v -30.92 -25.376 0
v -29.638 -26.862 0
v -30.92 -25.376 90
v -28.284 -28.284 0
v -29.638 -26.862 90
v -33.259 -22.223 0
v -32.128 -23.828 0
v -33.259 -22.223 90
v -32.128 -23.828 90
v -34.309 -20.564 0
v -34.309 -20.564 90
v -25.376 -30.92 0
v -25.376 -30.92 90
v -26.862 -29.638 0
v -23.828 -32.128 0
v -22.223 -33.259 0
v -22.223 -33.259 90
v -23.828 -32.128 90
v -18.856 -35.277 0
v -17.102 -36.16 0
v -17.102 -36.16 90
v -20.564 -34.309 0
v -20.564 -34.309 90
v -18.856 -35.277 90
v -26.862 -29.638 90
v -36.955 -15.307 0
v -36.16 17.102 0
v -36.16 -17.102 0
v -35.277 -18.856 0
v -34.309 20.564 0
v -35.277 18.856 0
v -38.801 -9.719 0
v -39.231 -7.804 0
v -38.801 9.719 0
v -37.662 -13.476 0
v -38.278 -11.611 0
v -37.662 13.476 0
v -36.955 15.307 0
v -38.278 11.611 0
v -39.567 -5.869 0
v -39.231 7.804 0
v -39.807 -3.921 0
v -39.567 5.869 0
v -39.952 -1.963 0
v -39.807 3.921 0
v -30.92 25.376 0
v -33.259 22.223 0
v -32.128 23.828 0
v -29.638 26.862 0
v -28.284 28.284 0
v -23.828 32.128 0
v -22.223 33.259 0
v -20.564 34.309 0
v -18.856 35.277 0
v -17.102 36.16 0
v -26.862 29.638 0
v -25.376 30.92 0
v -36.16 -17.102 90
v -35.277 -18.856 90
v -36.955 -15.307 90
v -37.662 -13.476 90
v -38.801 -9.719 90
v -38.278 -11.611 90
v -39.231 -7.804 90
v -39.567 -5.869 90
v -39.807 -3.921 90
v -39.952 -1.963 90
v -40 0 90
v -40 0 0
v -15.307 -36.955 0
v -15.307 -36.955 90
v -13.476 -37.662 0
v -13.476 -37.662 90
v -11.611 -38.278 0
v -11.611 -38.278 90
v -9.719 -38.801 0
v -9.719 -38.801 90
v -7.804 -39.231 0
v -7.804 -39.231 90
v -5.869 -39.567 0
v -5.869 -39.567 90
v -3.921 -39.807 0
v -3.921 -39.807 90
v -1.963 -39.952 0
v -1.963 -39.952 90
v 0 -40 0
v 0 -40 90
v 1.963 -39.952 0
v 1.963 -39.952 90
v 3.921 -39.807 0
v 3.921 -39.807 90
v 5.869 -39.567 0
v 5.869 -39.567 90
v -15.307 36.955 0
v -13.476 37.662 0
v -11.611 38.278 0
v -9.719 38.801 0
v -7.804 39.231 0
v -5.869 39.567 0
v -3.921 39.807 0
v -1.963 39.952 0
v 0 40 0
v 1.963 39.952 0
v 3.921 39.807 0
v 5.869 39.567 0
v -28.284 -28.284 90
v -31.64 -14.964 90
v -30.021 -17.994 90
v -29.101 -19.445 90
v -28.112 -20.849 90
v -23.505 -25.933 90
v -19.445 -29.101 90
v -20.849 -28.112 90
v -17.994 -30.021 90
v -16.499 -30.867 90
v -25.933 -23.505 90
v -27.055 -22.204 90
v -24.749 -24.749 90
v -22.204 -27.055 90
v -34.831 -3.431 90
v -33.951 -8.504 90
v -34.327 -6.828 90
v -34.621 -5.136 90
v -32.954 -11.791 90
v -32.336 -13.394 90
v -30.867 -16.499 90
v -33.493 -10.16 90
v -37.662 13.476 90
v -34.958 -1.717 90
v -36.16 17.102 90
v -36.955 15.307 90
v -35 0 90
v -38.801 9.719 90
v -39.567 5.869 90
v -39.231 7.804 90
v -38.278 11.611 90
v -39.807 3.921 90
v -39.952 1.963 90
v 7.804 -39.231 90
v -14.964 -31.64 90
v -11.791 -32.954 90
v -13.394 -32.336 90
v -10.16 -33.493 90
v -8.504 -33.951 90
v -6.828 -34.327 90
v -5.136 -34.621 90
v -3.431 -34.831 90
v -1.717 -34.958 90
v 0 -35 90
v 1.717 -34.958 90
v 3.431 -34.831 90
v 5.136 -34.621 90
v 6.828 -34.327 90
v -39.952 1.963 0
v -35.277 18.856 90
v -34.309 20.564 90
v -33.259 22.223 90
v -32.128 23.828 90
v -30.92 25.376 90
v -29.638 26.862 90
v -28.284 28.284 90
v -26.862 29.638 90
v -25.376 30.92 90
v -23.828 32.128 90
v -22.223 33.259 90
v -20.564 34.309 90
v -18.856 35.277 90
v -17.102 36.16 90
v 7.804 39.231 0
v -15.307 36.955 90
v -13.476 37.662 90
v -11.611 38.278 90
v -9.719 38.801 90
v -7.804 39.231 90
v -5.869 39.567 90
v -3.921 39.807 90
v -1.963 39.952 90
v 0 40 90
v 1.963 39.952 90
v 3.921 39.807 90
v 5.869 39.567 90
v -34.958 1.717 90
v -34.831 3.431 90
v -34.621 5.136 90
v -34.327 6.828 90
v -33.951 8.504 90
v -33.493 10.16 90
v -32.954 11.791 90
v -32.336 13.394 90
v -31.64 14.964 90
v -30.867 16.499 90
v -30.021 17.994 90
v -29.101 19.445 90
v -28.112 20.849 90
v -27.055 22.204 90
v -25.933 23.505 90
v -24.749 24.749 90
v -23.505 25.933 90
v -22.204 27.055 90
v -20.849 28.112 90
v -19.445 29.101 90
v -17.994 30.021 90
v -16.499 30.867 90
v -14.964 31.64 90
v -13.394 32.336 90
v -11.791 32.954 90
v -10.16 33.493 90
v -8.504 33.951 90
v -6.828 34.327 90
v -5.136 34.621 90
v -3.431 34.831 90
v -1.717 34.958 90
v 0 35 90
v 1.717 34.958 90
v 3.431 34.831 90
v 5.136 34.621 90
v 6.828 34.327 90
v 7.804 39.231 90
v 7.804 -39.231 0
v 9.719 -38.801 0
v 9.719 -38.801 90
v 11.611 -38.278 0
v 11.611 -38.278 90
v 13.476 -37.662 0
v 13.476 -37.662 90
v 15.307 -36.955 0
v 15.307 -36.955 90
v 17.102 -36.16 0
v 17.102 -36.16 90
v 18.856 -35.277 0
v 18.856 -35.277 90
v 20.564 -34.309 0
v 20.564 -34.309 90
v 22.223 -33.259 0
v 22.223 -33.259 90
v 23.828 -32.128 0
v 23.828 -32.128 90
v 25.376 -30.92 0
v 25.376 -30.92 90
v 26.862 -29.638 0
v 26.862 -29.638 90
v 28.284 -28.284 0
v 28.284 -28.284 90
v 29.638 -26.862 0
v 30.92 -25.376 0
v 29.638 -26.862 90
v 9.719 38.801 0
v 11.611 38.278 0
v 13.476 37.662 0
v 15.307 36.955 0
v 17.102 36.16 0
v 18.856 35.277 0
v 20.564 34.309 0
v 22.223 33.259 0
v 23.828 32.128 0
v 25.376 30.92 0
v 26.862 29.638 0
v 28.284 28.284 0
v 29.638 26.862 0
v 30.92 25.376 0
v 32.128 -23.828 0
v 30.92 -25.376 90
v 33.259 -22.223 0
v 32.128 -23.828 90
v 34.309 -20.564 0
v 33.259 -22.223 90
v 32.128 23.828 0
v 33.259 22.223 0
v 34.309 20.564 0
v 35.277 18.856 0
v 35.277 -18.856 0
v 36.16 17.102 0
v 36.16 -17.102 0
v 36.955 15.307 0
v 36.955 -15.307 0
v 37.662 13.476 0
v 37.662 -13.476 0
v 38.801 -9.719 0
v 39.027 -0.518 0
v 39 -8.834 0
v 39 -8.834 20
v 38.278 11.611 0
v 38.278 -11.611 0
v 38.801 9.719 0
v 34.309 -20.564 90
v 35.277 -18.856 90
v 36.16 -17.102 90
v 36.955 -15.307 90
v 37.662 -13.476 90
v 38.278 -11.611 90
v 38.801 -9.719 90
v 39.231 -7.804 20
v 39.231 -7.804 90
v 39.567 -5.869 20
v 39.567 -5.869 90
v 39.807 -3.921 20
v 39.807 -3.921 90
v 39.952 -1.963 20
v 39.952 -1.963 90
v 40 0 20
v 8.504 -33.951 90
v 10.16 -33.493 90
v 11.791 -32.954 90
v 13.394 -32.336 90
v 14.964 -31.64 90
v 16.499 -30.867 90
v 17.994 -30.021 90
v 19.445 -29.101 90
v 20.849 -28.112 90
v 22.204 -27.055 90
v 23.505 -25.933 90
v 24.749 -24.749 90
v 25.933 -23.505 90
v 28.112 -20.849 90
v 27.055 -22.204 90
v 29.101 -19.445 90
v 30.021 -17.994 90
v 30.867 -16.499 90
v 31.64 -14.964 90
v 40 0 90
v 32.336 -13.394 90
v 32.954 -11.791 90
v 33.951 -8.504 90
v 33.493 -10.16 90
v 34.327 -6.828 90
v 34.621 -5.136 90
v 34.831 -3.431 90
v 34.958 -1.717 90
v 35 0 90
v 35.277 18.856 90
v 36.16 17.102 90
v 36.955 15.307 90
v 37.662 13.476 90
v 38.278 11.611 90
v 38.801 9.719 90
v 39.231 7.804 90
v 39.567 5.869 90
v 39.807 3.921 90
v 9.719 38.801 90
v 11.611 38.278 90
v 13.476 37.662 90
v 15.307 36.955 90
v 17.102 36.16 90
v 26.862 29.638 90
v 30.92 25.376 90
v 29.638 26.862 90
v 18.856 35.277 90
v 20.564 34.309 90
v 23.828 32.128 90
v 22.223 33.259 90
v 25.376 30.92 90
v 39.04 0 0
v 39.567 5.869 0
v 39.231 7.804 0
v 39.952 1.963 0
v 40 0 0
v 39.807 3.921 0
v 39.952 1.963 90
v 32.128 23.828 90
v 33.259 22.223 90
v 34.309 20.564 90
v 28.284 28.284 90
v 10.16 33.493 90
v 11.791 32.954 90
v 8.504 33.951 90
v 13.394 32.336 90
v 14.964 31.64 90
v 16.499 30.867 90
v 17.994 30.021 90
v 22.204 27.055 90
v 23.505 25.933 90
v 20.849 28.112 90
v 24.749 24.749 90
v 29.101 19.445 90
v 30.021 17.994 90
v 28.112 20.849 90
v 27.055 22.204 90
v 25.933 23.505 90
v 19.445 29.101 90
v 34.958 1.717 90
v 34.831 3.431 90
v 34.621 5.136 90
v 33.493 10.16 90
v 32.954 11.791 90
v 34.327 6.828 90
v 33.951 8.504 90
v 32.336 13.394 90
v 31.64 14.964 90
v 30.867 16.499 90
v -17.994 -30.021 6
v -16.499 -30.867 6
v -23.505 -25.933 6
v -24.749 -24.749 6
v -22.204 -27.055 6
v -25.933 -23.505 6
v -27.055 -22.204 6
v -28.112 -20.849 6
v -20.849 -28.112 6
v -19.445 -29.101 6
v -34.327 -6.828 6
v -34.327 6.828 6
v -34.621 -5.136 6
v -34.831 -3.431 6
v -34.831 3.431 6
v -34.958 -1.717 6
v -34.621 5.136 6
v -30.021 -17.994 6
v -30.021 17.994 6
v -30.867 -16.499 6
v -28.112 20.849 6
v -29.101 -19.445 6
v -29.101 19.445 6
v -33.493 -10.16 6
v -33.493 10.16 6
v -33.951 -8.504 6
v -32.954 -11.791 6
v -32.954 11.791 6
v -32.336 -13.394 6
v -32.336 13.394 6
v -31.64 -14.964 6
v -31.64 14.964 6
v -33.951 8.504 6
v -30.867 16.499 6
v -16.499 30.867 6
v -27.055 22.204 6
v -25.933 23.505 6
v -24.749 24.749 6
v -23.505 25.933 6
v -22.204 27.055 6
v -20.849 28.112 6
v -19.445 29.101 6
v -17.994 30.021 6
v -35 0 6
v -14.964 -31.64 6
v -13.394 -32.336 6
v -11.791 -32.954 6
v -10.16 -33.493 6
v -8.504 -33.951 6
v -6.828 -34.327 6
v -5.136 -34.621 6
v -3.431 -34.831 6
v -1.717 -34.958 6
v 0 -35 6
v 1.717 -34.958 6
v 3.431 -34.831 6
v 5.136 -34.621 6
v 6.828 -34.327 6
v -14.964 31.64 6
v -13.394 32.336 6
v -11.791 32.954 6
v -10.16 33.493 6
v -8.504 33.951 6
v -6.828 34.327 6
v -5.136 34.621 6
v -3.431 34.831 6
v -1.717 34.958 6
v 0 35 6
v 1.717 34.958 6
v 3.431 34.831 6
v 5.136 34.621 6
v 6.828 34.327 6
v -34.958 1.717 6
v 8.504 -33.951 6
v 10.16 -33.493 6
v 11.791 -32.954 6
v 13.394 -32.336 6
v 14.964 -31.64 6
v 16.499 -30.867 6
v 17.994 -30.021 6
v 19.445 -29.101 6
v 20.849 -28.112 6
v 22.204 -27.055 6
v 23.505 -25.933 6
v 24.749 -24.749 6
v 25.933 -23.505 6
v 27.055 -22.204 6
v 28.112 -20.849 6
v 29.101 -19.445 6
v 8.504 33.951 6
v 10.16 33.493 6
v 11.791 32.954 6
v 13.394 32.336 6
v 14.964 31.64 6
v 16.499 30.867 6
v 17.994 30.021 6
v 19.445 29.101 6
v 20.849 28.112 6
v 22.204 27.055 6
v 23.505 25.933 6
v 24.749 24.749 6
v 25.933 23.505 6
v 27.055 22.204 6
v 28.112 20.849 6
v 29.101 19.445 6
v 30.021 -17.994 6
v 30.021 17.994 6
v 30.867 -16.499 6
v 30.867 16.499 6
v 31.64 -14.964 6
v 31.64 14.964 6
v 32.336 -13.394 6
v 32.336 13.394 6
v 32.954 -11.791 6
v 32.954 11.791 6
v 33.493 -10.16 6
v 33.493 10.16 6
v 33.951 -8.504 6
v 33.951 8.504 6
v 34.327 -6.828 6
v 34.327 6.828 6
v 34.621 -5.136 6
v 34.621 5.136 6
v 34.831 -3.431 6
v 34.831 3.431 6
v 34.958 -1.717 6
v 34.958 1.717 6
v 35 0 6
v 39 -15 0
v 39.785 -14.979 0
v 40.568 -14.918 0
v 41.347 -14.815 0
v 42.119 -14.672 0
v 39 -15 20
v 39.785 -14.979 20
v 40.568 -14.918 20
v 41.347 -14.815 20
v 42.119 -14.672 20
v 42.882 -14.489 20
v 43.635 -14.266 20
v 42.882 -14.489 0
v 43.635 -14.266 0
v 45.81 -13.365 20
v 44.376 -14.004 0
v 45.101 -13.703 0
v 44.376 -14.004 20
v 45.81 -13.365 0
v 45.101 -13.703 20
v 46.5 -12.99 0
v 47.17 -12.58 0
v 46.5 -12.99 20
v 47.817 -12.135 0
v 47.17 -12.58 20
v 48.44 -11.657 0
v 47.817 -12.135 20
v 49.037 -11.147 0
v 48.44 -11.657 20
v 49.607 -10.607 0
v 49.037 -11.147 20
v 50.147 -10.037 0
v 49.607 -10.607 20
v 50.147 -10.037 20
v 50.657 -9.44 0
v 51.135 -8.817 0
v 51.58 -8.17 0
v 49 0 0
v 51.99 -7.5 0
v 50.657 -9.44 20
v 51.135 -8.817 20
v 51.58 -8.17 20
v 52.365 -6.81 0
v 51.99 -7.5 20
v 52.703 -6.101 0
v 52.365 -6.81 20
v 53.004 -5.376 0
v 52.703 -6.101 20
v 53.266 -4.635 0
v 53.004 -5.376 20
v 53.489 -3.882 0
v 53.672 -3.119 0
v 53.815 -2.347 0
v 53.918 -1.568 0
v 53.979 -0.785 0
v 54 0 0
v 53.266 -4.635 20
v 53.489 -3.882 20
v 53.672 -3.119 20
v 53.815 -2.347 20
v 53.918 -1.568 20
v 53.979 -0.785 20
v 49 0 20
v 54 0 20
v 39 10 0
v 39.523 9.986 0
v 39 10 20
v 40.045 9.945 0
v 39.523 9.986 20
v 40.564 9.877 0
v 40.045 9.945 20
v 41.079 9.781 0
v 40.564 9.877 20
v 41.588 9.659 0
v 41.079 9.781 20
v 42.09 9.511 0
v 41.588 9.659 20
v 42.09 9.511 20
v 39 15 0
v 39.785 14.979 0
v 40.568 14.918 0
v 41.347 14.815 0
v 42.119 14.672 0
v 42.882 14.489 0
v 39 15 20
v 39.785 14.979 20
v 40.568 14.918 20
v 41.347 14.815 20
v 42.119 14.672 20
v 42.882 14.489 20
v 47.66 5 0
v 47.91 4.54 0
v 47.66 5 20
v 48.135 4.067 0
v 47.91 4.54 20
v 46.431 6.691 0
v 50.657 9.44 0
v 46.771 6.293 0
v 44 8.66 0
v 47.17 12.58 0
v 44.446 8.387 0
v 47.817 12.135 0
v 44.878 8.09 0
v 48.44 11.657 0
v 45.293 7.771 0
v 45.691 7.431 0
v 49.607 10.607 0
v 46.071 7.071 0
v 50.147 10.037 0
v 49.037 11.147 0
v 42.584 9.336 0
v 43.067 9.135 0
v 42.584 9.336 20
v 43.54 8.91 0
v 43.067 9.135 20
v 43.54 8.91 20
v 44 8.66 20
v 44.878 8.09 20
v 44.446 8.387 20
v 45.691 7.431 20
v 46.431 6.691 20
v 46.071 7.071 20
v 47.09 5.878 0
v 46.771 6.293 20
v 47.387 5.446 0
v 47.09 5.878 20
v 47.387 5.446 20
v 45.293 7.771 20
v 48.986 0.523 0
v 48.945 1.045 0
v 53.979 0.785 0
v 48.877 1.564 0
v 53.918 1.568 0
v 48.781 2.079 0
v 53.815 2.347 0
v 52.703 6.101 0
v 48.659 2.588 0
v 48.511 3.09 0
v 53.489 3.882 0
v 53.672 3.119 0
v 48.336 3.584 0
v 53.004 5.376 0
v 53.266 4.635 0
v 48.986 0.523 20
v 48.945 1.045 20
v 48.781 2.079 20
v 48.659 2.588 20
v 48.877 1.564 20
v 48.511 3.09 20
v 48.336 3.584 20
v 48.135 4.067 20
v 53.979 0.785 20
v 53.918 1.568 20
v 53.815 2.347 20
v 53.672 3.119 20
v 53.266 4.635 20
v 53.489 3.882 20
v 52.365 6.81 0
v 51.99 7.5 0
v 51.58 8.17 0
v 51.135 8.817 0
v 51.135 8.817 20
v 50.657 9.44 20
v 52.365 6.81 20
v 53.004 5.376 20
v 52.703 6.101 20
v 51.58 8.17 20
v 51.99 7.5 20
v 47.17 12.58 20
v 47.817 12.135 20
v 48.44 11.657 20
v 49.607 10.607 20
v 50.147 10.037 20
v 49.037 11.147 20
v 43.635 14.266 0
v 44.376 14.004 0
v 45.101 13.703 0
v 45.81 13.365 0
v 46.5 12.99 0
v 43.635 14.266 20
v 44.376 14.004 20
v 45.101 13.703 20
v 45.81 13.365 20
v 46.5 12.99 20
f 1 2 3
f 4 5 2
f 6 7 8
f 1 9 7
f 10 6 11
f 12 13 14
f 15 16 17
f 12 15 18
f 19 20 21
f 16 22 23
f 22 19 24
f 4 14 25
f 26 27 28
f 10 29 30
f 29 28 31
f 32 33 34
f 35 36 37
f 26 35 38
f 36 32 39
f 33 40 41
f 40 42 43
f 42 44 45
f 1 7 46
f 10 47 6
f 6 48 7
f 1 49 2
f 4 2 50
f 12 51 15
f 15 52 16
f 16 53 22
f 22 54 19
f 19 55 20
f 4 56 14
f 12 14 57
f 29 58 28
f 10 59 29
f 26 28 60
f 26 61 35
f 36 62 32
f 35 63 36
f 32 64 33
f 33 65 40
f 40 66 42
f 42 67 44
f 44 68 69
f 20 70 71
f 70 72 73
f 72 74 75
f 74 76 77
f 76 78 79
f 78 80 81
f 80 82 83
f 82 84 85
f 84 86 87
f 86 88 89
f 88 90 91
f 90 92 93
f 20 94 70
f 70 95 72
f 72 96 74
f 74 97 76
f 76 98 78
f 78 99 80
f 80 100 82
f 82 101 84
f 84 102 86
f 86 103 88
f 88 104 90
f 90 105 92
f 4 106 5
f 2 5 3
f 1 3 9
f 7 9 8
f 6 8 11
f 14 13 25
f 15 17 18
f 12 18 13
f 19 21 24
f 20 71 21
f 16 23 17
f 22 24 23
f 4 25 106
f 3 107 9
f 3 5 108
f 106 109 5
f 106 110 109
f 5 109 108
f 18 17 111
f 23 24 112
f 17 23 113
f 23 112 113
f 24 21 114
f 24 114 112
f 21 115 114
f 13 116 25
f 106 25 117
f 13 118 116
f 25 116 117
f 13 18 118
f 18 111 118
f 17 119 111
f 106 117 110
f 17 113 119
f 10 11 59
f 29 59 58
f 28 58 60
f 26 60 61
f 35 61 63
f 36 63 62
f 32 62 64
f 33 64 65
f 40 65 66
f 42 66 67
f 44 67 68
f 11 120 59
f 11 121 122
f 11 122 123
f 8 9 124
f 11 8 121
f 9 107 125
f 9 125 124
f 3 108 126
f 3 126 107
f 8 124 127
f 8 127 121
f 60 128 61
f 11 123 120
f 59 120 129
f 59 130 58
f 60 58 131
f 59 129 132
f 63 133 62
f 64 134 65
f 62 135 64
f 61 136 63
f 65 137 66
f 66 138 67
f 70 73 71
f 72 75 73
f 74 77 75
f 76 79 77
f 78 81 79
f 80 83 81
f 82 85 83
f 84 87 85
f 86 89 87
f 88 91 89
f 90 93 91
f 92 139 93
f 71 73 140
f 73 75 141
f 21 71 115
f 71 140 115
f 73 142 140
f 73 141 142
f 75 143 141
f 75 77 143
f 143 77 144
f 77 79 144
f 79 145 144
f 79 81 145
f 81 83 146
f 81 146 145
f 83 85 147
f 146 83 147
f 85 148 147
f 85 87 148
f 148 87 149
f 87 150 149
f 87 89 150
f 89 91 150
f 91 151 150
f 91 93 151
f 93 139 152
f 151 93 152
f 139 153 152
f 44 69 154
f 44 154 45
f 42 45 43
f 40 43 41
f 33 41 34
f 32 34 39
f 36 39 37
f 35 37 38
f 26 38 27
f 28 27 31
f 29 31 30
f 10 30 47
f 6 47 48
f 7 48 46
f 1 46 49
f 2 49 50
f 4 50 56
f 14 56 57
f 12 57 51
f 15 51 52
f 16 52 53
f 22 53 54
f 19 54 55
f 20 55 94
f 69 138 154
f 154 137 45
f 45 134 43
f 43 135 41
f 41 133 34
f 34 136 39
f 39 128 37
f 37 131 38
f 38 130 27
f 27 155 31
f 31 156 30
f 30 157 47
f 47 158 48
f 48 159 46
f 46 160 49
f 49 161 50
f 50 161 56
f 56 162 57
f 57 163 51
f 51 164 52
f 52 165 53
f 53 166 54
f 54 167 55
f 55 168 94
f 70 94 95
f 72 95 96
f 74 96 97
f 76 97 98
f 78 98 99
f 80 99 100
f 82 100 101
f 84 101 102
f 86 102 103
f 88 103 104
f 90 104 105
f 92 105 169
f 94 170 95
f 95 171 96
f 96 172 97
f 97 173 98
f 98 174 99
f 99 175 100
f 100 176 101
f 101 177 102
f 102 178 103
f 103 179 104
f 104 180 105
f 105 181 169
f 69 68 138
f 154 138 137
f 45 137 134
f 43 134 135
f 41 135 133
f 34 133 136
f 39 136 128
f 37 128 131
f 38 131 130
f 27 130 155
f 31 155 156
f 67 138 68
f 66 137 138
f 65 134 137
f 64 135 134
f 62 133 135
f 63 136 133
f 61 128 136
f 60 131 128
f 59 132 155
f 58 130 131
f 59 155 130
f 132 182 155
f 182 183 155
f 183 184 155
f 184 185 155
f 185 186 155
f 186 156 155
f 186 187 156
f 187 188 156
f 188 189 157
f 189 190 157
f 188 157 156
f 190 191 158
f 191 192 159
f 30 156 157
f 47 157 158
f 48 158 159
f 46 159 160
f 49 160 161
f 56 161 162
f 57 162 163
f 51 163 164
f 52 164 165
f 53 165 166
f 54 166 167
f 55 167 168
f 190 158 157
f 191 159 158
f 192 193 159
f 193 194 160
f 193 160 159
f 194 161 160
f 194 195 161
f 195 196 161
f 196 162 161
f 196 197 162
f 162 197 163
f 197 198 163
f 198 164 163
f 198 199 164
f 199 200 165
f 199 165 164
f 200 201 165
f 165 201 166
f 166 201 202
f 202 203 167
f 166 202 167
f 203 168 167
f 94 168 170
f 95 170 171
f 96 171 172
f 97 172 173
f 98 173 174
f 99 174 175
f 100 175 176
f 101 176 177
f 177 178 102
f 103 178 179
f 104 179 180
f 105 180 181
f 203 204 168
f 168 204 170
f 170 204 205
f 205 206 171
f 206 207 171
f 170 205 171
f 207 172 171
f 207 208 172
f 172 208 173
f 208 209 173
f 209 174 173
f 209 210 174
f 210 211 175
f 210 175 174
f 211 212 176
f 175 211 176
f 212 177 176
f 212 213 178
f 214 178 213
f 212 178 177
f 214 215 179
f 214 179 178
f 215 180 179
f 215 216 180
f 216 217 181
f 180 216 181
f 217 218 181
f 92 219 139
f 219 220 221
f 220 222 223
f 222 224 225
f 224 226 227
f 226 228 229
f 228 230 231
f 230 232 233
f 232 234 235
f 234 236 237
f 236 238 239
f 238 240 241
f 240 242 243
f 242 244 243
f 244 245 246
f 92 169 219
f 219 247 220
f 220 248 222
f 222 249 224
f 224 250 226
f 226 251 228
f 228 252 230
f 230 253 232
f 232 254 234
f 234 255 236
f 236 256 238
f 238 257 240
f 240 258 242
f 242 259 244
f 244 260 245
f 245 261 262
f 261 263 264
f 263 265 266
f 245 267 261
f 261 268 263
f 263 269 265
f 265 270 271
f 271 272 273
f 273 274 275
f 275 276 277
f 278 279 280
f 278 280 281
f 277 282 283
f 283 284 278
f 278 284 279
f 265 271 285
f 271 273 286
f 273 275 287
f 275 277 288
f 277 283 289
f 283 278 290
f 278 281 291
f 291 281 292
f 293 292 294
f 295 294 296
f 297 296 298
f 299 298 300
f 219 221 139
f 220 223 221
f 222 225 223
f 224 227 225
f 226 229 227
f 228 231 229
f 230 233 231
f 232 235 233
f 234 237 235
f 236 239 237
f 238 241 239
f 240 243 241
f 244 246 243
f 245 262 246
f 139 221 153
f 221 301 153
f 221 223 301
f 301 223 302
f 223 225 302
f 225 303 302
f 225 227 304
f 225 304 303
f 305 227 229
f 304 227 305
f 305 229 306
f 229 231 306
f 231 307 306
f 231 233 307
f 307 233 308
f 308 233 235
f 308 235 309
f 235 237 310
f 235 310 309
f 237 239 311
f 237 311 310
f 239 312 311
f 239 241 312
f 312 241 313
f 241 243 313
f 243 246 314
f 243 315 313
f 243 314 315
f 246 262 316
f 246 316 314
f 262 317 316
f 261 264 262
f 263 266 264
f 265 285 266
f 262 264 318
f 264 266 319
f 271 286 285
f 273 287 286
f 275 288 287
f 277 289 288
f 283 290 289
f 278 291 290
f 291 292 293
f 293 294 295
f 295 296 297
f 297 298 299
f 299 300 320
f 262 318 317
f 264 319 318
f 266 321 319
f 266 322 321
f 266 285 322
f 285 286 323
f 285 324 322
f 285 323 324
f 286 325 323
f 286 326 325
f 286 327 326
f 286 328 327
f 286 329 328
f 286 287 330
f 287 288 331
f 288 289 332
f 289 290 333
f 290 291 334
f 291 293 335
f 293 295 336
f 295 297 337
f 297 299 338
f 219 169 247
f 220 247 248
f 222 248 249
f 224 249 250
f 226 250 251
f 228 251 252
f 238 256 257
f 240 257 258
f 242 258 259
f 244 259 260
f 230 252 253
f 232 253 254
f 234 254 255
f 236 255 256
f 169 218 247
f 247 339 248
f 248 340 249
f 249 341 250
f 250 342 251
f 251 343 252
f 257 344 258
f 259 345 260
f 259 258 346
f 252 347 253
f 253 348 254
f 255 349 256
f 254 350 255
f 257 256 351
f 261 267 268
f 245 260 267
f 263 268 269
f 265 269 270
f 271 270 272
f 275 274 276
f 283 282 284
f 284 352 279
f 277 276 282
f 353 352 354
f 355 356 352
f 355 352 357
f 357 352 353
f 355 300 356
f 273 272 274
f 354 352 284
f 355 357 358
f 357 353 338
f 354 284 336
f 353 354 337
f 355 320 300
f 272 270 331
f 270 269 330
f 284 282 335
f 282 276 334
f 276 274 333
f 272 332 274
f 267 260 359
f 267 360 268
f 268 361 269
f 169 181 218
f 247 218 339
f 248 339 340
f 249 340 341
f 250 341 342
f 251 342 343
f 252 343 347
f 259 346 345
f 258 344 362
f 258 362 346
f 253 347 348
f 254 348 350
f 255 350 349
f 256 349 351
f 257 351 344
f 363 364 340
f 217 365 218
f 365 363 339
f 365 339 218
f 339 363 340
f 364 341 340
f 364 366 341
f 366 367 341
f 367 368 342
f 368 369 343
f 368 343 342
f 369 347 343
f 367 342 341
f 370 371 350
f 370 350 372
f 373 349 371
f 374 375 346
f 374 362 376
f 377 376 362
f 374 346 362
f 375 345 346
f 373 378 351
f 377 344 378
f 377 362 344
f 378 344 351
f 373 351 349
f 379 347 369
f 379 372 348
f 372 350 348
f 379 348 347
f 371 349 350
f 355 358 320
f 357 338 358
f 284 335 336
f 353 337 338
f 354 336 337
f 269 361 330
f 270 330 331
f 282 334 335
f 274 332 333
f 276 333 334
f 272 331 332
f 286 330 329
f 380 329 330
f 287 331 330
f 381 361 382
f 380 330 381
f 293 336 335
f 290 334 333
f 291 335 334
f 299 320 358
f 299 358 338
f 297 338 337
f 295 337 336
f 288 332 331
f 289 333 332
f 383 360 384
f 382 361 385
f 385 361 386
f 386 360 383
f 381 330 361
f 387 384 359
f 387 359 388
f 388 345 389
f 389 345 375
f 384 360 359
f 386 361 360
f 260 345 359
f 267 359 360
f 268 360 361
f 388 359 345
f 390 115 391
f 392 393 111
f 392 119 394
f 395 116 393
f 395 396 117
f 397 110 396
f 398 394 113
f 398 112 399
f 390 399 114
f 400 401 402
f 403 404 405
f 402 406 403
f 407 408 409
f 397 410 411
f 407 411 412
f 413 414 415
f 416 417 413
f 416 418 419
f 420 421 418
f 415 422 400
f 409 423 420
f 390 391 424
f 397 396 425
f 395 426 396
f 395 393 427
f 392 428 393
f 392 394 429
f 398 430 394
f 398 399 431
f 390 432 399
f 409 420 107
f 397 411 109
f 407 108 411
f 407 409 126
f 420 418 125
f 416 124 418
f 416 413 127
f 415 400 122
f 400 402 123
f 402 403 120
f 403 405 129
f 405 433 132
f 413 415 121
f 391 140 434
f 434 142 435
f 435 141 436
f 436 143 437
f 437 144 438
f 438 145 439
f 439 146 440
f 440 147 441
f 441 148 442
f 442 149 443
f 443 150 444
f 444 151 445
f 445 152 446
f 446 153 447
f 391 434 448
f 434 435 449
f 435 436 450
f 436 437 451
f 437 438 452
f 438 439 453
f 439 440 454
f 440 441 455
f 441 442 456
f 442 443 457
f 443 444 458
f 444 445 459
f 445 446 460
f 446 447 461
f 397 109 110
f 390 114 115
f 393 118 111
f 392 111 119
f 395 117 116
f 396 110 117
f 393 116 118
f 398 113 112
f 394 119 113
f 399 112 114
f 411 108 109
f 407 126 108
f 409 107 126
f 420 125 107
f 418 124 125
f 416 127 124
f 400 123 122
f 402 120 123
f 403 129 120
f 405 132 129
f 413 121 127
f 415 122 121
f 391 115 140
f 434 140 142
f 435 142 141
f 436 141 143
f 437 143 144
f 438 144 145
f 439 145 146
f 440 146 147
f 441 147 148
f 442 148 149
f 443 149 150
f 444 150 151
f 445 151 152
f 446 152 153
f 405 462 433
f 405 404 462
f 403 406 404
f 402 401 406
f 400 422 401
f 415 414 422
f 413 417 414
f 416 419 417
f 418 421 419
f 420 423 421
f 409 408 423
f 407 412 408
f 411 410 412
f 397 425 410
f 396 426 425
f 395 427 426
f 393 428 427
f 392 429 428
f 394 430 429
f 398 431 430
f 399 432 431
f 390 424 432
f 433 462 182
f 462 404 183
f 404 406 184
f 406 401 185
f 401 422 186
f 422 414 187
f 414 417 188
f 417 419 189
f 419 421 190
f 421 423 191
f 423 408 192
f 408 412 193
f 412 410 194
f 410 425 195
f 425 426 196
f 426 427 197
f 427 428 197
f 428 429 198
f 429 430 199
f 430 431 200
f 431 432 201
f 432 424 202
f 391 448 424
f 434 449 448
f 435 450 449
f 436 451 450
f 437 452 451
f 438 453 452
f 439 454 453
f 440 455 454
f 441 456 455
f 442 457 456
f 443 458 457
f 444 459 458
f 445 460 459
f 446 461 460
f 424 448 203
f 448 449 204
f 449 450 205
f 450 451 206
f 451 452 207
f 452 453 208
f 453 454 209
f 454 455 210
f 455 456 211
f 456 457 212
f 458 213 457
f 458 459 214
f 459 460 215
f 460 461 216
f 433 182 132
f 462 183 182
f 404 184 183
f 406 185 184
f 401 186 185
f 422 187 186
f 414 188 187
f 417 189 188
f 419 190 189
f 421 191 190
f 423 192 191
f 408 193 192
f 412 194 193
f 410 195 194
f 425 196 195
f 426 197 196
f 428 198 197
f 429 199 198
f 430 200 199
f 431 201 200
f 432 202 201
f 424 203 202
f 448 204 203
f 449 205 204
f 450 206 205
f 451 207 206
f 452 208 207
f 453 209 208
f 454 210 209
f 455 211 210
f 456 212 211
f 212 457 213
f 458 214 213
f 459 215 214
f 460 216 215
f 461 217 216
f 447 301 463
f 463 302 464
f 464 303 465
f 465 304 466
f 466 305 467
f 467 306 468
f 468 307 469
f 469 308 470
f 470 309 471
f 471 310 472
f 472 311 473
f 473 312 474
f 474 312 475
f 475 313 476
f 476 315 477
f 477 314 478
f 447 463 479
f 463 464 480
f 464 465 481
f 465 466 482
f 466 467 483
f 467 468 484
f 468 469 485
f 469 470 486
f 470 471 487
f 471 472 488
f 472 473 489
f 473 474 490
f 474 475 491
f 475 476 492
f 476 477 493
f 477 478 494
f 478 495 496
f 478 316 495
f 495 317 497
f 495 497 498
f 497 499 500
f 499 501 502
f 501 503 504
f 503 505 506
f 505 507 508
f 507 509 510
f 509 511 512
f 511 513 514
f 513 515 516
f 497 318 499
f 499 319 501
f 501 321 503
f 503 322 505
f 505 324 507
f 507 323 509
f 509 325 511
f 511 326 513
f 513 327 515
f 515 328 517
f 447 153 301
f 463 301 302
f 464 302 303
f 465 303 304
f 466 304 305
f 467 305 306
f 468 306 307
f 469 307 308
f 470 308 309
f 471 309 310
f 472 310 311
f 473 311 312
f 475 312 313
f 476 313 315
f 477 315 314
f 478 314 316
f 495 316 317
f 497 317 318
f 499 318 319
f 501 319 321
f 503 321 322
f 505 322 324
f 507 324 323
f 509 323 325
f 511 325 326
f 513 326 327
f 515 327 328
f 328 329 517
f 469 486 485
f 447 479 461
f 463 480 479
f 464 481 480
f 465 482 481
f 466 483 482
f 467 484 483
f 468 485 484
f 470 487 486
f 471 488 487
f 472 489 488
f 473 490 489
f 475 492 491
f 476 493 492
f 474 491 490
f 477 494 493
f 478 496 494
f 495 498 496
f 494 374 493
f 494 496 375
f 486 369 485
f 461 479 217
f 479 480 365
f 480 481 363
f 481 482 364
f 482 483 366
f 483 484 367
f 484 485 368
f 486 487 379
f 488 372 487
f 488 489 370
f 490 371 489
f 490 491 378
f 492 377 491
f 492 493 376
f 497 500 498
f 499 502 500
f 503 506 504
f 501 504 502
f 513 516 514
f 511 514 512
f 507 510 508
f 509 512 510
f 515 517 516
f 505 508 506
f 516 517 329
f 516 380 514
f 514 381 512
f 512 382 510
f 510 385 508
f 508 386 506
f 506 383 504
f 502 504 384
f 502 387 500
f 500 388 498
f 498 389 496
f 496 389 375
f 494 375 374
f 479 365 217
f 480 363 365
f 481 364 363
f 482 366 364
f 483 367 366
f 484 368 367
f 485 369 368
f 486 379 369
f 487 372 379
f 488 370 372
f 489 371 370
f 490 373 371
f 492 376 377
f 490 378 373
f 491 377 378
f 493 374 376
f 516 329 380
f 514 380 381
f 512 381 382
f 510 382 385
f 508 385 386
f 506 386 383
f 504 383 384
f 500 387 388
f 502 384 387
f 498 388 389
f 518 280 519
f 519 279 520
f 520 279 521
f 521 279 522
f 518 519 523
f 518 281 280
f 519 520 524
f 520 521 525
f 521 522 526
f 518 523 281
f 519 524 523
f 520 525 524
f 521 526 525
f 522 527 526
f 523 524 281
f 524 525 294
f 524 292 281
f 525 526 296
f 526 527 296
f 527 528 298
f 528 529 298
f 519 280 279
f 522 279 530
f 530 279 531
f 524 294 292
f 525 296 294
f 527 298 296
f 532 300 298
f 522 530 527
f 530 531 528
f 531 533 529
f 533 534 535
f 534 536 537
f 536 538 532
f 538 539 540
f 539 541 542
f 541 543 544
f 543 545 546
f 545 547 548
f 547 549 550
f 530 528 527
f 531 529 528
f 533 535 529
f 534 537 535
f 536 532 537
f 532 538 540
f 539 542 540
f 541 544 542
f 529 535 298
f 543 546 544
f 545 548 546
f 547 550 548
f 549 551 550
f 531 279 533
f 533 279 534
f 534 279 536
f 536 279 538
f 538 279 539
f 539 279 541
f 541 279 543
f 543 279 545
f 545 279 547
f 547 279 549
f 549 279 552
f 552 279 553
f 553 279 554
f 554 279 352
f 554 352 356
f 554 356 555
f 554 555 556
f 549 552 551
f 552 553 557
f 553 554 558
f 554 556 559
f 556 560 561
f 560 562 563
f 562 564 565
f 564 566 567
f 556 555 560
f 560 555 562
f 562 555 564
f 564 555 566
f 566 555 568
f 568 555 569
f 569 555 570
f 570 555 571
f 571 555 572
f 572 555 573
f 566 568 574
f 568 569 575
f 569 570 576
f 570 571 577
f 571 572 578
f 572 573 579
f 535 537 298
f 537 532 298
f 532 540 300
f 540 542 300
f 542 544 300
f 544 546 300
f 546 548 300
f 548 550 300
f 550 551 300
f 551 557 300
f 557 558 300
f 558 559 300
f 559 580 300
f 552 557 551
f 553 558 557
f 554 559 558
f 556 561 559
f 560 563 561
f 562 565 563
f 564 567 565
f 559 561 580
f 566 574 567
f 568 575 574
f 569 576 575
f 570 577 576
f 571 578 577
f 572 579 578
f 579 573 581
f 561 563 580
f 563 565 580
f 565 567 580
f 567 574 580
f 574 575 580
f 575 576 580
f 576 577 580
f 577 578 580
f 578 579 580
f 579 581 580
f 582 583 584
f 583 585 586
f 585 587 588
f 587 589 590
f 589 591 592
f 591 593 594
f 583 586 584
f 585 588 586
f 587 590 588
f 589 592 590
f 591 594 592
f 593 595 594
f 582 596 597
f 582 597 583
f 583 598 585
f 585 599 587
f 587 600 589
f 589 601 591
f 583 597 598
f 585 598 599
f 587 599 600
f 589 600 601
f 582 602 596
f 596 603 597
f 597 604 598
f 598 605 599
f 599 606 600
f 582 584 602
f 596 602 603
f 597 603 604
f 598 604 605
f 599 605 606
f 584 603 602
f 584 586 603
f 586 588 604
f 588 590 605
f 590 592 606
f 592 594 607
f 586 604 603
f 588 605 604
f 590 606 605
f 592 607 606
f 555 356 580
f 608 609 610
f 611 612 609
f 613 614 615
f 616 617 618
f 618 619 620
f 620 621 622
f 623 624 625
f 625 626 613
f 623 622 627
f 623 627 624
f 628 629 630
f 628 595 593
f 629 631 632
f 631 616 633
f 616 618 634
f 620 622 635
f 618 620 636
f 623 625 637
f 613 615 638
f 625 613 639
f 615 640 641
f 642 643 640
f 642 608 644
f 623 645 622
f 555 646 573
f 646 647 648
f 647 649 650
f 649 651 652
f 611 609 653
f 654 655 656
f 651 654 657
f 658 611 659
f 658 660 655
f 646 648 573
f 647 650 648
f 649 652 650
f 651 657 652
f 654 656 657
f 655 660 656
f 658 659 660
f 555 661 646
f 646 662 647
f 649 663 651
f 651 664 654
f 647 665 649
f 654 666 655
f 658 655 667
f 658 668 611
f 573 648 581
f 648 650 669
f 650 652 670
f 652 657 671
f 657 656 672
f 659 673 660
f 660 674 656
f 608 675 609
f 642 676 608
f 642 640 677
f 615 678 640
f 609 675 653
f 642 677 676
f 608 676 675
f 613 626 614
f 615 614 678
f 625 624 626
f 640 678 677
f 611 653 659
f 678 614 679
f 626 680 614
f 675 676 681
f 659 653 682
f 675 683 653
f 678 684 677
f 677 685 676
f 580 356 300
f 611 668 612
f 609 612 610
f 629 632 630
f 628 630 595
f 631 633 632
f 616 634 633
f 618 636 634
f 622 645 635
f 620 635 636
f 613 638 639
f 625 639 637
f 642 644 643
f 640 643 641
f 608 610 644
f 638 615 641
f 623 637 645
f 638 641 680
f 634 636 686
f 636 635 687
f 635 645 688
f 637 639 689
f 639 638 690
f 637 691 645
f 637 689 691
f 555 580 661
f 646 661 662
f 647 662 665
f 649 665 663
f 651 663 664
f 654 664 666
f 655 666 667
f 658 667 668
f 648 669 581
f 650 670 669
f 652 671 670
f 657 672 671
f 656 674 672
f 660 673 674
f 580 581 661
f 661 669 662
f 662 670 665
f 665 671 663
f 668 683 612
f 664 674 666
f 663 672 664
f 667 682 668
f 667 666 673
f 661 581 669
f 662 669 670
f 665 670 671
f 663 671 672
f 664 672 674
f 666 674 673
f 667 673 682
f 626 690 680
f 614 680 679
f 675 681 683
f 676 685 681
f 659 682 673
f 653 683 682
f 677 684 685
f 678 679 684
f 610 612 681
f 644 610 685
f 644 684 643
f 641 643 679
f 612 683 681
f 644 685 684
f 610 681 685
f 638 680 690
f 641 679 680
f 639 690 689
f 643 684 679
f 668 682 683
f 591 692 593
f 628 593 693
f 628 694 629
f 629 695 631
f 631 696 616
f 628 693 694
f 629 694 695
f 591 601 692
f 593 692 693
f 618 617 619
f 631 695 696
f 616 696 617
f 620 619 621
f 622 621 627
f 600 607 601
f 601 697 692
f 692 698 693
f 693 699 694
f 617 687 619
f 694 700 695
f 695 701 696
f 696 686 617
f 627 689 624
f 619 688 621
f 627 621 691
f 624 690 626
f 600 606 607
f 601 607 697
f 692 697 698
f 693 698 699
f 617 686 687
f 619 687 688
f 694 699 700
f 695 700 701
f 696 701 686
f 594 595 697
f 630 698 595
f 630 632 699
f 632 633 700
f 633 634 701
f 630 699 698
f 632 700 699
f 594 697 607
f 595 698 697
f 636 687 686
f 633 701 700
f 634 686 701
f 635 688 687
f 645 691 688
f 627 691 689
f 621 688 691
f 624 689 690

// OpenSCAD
// Mug with handle (OpenSCAD)

$fn = 128;

// Parameters
outer_d = 80;      // outer diameter
inner_d = 70;      // inner diameter
t_wall  = 5;       // wall thickness (given)
h_mug   = 90;      // mug height
t_bottom= 6;       // bottom thickness

handle_w = 25;     // inner space width (x-direction)
handle_h = 30;     // inner space height (z-direction)
handle_center_z = h_mug/2; // center near mid height

handle_thickness = 5; // approximate handle wall thickness (for solidness)
handle_outer_r = handle_h/2; // radius used for outer half-cylinder

module mug() {
  difference() {
    // Outer cylinder with bottom thickness included
    cylinder(d=outer_d, h=h_mug, center=false);

    // Inner cavity: leave bottom thickness
    translate([0,0,t_bottom])
      cylinder(d=inner_d, h=h_mug - t_bottom, center=false);
  }
}

module handle() {
  // D-shaped handle:
  // - Outside: half-cylinder along YZ plane (flat side toward mug center)
  // - Inside: remove a slightly smaller half-cylinder to make an opening with
  //            inner cross-section approximating 30mm(height) x 25mm(width)
  //
  // We'll place the handle on +X side only.
  // Coordinate note:
  // - Mug axis: Z
  // - We attach handle so it extends in +X direction.
  // - Half-cylinder is generated along Y (so width is along Y) and radius is Z.

  // Choose radius so that inner height matches ~handle_h
  r_outer = handle_outer_r; // ~ handle_h/2
  r_inner = r_outer - handle_thickness;

  // Depth (along Y) is handle_w, using half-cylinder which naturally spans 2*r.
  // We'll limit width by intersecting with a Y slab of size handle_w.
  // Also, orient the half-cylinder so its flat side is toward -X (mug center),
  // and its curved side is toward +X.

  // Position: touch at mug outer surface on +X
  mug_r = outer_d/2;

  // Half-cylinder centered in Y at 0.
  // Flat side aligned so that curved outer surface is at +X near mug surface.
  // We'll create half-cylinder with centerline at X = mug_r.
  x_attach = mug_r; // flat face starts at X=mug_r, curved extends to +X.

  translate([x_attach, 0, handle_center_z])
    rotate([0,90,0])  // make cylinder axis along X initially, then adjust to half-cylinder along X
      // We'll build using a half-cylinder via intersection with a half-space.
      difference() {
        // Outer half-cylinder (curved outer, flat inner side)
        intersection() {
          // Full cylinder (axis along X after rotate)
          rotate([0,0,0])
            translate([0,0,0])
              cylinder(r=r_outer, h=outer_d*0.4, center=false);

          // Keep only the +X half of the cylinder relative to its center
          // For a cylinder (axis along X), half selection is in YZ, not X.
          // Instead, we create "D" in cross-section by selecting Y range:
          // - The flat side is created by clipping on Y: keep Y >= 0 for half.
          translate([0, -r_outer, -r_outer])
            cube([outer_d*0.4, 2*r_outer, 2*r_outer], center=false);
        }

        // Inner cavity in the handle: subtract smaller half-cylinder
        intersection() {
          cylinder(r=r_inner, h=outer_d*0.4, center=false);

          translate([0, -r_inner, -r_inner])
            cube([outer_d*0.4, 2*r_inner, 2*r_inner], center=false);
        }

        // Limit the overall handle width (inner space target ~handle_w) by slicing in Y.
        // (Applied after subtraction; keeps walls from extending too far.)
        translate([0, -(handle_w/2 + handle_thickness), -(r_outer)])
          cube([outer_d*0.4, handle_w + 2*handle_thickness, 2*r_outer], center=false);
      }
}

module handle_v2() {
  // More controlled D-shape:
  // Create a "D" cross-section in YZ, extruded along X into the +X side,
  // then subtract an inner opening with the requested width/height.
  //
  // D-shape in 2D: outer half-circle + flat line.
  // We use rotate_extrude-like by using linear_extrude of 2D polygons.

  mug_r = outer_d/2;

  // X extrusion length: make sure it grips the mug wall firmly
  x_len = 20;

  // 2D coordinates:
  // - Flat side is at X=0 in 2D space; curved side extends to +Y.
  // But for our 2D, we will define in (y,z) plane.
  // Let half-circle be centered at y = 0, z = 0? Better:
  // Define 2D in (Y,Z):
  // outer half-circle radius r_outer centered at (Y=0, Z=0),
  // keep only Y>=0 to form the D with flat at Y=0.
  r_outer = handle_h/2;
  r_inner = r_outer - handle_thickness;

  // Width control: inner opening width is handle_w (in Y).
  // We'll subtract an inner half-oval limited to handle_w in Y by clipping.
  // Then outer will be clipped similarly to avoid overly long width.

  linear_extrude(height=x_len)
    translate([mug_r, 0, handle_center_z])  // move to mug side and height
      rotate([0,0,0])  // keep
      // Build outer D in YZ (extruded along X)
      difference() {
        // Outer D polygon (in YZ plane)
        // Outer half-circle from z=-r_outer..+r_outer with y>=0
        polygon(concat(
          // Arc points (counter-clockwise), y from 0..r
          [for (i=[0:60]) 
            let(t = -90 + i*(180/60))
            [ r_outer*cos(t), r_outer*sin(t) ]],
          // Close with flat edge along y=0 from top to bottom
          [[0, r_outer],[0,-r_outer]]
        ));

        // Inner opening: subtract smaller D, clipped by requested inner width in Y
        translate([0,0])
          intersection() {
            // Inner D
            polygon(concat(
              [for (i=[0:60])
                let(t = -90 + i*(180/60))
                [ r_inner*cos(t), r_inner*sin(t) ]],
              [[0, r_inner],[0,-r_inner]]
            ));
            // Clip to requested inner width around y= (0..handle_w)
            // Since D uses y>=0, we only keep 0..handle_w.
            translate([0,0])
              square([handle_w, 2*r_outer + 1], center=false);
          }
      }
}

module mug_with_handle() {
  union() {
    mug();

    // Attach handle only on +X side:
    // The handle geometry is placed at X = mug outer radius.
    // Ensure it overlaps slightly into the mug wall region to avoid gaps.
    // We'll union by overlapping in X by a small amount.
    translate([0,0,0])
      union() {
        // Choose handle_v2 for controlled D shape.
        // Slight negative X offset to guarantee connection (overlap) with mug wall.
        translate([-1, 0, 0]) handle_v2();
      }
  }
}

mug_with_handle();
